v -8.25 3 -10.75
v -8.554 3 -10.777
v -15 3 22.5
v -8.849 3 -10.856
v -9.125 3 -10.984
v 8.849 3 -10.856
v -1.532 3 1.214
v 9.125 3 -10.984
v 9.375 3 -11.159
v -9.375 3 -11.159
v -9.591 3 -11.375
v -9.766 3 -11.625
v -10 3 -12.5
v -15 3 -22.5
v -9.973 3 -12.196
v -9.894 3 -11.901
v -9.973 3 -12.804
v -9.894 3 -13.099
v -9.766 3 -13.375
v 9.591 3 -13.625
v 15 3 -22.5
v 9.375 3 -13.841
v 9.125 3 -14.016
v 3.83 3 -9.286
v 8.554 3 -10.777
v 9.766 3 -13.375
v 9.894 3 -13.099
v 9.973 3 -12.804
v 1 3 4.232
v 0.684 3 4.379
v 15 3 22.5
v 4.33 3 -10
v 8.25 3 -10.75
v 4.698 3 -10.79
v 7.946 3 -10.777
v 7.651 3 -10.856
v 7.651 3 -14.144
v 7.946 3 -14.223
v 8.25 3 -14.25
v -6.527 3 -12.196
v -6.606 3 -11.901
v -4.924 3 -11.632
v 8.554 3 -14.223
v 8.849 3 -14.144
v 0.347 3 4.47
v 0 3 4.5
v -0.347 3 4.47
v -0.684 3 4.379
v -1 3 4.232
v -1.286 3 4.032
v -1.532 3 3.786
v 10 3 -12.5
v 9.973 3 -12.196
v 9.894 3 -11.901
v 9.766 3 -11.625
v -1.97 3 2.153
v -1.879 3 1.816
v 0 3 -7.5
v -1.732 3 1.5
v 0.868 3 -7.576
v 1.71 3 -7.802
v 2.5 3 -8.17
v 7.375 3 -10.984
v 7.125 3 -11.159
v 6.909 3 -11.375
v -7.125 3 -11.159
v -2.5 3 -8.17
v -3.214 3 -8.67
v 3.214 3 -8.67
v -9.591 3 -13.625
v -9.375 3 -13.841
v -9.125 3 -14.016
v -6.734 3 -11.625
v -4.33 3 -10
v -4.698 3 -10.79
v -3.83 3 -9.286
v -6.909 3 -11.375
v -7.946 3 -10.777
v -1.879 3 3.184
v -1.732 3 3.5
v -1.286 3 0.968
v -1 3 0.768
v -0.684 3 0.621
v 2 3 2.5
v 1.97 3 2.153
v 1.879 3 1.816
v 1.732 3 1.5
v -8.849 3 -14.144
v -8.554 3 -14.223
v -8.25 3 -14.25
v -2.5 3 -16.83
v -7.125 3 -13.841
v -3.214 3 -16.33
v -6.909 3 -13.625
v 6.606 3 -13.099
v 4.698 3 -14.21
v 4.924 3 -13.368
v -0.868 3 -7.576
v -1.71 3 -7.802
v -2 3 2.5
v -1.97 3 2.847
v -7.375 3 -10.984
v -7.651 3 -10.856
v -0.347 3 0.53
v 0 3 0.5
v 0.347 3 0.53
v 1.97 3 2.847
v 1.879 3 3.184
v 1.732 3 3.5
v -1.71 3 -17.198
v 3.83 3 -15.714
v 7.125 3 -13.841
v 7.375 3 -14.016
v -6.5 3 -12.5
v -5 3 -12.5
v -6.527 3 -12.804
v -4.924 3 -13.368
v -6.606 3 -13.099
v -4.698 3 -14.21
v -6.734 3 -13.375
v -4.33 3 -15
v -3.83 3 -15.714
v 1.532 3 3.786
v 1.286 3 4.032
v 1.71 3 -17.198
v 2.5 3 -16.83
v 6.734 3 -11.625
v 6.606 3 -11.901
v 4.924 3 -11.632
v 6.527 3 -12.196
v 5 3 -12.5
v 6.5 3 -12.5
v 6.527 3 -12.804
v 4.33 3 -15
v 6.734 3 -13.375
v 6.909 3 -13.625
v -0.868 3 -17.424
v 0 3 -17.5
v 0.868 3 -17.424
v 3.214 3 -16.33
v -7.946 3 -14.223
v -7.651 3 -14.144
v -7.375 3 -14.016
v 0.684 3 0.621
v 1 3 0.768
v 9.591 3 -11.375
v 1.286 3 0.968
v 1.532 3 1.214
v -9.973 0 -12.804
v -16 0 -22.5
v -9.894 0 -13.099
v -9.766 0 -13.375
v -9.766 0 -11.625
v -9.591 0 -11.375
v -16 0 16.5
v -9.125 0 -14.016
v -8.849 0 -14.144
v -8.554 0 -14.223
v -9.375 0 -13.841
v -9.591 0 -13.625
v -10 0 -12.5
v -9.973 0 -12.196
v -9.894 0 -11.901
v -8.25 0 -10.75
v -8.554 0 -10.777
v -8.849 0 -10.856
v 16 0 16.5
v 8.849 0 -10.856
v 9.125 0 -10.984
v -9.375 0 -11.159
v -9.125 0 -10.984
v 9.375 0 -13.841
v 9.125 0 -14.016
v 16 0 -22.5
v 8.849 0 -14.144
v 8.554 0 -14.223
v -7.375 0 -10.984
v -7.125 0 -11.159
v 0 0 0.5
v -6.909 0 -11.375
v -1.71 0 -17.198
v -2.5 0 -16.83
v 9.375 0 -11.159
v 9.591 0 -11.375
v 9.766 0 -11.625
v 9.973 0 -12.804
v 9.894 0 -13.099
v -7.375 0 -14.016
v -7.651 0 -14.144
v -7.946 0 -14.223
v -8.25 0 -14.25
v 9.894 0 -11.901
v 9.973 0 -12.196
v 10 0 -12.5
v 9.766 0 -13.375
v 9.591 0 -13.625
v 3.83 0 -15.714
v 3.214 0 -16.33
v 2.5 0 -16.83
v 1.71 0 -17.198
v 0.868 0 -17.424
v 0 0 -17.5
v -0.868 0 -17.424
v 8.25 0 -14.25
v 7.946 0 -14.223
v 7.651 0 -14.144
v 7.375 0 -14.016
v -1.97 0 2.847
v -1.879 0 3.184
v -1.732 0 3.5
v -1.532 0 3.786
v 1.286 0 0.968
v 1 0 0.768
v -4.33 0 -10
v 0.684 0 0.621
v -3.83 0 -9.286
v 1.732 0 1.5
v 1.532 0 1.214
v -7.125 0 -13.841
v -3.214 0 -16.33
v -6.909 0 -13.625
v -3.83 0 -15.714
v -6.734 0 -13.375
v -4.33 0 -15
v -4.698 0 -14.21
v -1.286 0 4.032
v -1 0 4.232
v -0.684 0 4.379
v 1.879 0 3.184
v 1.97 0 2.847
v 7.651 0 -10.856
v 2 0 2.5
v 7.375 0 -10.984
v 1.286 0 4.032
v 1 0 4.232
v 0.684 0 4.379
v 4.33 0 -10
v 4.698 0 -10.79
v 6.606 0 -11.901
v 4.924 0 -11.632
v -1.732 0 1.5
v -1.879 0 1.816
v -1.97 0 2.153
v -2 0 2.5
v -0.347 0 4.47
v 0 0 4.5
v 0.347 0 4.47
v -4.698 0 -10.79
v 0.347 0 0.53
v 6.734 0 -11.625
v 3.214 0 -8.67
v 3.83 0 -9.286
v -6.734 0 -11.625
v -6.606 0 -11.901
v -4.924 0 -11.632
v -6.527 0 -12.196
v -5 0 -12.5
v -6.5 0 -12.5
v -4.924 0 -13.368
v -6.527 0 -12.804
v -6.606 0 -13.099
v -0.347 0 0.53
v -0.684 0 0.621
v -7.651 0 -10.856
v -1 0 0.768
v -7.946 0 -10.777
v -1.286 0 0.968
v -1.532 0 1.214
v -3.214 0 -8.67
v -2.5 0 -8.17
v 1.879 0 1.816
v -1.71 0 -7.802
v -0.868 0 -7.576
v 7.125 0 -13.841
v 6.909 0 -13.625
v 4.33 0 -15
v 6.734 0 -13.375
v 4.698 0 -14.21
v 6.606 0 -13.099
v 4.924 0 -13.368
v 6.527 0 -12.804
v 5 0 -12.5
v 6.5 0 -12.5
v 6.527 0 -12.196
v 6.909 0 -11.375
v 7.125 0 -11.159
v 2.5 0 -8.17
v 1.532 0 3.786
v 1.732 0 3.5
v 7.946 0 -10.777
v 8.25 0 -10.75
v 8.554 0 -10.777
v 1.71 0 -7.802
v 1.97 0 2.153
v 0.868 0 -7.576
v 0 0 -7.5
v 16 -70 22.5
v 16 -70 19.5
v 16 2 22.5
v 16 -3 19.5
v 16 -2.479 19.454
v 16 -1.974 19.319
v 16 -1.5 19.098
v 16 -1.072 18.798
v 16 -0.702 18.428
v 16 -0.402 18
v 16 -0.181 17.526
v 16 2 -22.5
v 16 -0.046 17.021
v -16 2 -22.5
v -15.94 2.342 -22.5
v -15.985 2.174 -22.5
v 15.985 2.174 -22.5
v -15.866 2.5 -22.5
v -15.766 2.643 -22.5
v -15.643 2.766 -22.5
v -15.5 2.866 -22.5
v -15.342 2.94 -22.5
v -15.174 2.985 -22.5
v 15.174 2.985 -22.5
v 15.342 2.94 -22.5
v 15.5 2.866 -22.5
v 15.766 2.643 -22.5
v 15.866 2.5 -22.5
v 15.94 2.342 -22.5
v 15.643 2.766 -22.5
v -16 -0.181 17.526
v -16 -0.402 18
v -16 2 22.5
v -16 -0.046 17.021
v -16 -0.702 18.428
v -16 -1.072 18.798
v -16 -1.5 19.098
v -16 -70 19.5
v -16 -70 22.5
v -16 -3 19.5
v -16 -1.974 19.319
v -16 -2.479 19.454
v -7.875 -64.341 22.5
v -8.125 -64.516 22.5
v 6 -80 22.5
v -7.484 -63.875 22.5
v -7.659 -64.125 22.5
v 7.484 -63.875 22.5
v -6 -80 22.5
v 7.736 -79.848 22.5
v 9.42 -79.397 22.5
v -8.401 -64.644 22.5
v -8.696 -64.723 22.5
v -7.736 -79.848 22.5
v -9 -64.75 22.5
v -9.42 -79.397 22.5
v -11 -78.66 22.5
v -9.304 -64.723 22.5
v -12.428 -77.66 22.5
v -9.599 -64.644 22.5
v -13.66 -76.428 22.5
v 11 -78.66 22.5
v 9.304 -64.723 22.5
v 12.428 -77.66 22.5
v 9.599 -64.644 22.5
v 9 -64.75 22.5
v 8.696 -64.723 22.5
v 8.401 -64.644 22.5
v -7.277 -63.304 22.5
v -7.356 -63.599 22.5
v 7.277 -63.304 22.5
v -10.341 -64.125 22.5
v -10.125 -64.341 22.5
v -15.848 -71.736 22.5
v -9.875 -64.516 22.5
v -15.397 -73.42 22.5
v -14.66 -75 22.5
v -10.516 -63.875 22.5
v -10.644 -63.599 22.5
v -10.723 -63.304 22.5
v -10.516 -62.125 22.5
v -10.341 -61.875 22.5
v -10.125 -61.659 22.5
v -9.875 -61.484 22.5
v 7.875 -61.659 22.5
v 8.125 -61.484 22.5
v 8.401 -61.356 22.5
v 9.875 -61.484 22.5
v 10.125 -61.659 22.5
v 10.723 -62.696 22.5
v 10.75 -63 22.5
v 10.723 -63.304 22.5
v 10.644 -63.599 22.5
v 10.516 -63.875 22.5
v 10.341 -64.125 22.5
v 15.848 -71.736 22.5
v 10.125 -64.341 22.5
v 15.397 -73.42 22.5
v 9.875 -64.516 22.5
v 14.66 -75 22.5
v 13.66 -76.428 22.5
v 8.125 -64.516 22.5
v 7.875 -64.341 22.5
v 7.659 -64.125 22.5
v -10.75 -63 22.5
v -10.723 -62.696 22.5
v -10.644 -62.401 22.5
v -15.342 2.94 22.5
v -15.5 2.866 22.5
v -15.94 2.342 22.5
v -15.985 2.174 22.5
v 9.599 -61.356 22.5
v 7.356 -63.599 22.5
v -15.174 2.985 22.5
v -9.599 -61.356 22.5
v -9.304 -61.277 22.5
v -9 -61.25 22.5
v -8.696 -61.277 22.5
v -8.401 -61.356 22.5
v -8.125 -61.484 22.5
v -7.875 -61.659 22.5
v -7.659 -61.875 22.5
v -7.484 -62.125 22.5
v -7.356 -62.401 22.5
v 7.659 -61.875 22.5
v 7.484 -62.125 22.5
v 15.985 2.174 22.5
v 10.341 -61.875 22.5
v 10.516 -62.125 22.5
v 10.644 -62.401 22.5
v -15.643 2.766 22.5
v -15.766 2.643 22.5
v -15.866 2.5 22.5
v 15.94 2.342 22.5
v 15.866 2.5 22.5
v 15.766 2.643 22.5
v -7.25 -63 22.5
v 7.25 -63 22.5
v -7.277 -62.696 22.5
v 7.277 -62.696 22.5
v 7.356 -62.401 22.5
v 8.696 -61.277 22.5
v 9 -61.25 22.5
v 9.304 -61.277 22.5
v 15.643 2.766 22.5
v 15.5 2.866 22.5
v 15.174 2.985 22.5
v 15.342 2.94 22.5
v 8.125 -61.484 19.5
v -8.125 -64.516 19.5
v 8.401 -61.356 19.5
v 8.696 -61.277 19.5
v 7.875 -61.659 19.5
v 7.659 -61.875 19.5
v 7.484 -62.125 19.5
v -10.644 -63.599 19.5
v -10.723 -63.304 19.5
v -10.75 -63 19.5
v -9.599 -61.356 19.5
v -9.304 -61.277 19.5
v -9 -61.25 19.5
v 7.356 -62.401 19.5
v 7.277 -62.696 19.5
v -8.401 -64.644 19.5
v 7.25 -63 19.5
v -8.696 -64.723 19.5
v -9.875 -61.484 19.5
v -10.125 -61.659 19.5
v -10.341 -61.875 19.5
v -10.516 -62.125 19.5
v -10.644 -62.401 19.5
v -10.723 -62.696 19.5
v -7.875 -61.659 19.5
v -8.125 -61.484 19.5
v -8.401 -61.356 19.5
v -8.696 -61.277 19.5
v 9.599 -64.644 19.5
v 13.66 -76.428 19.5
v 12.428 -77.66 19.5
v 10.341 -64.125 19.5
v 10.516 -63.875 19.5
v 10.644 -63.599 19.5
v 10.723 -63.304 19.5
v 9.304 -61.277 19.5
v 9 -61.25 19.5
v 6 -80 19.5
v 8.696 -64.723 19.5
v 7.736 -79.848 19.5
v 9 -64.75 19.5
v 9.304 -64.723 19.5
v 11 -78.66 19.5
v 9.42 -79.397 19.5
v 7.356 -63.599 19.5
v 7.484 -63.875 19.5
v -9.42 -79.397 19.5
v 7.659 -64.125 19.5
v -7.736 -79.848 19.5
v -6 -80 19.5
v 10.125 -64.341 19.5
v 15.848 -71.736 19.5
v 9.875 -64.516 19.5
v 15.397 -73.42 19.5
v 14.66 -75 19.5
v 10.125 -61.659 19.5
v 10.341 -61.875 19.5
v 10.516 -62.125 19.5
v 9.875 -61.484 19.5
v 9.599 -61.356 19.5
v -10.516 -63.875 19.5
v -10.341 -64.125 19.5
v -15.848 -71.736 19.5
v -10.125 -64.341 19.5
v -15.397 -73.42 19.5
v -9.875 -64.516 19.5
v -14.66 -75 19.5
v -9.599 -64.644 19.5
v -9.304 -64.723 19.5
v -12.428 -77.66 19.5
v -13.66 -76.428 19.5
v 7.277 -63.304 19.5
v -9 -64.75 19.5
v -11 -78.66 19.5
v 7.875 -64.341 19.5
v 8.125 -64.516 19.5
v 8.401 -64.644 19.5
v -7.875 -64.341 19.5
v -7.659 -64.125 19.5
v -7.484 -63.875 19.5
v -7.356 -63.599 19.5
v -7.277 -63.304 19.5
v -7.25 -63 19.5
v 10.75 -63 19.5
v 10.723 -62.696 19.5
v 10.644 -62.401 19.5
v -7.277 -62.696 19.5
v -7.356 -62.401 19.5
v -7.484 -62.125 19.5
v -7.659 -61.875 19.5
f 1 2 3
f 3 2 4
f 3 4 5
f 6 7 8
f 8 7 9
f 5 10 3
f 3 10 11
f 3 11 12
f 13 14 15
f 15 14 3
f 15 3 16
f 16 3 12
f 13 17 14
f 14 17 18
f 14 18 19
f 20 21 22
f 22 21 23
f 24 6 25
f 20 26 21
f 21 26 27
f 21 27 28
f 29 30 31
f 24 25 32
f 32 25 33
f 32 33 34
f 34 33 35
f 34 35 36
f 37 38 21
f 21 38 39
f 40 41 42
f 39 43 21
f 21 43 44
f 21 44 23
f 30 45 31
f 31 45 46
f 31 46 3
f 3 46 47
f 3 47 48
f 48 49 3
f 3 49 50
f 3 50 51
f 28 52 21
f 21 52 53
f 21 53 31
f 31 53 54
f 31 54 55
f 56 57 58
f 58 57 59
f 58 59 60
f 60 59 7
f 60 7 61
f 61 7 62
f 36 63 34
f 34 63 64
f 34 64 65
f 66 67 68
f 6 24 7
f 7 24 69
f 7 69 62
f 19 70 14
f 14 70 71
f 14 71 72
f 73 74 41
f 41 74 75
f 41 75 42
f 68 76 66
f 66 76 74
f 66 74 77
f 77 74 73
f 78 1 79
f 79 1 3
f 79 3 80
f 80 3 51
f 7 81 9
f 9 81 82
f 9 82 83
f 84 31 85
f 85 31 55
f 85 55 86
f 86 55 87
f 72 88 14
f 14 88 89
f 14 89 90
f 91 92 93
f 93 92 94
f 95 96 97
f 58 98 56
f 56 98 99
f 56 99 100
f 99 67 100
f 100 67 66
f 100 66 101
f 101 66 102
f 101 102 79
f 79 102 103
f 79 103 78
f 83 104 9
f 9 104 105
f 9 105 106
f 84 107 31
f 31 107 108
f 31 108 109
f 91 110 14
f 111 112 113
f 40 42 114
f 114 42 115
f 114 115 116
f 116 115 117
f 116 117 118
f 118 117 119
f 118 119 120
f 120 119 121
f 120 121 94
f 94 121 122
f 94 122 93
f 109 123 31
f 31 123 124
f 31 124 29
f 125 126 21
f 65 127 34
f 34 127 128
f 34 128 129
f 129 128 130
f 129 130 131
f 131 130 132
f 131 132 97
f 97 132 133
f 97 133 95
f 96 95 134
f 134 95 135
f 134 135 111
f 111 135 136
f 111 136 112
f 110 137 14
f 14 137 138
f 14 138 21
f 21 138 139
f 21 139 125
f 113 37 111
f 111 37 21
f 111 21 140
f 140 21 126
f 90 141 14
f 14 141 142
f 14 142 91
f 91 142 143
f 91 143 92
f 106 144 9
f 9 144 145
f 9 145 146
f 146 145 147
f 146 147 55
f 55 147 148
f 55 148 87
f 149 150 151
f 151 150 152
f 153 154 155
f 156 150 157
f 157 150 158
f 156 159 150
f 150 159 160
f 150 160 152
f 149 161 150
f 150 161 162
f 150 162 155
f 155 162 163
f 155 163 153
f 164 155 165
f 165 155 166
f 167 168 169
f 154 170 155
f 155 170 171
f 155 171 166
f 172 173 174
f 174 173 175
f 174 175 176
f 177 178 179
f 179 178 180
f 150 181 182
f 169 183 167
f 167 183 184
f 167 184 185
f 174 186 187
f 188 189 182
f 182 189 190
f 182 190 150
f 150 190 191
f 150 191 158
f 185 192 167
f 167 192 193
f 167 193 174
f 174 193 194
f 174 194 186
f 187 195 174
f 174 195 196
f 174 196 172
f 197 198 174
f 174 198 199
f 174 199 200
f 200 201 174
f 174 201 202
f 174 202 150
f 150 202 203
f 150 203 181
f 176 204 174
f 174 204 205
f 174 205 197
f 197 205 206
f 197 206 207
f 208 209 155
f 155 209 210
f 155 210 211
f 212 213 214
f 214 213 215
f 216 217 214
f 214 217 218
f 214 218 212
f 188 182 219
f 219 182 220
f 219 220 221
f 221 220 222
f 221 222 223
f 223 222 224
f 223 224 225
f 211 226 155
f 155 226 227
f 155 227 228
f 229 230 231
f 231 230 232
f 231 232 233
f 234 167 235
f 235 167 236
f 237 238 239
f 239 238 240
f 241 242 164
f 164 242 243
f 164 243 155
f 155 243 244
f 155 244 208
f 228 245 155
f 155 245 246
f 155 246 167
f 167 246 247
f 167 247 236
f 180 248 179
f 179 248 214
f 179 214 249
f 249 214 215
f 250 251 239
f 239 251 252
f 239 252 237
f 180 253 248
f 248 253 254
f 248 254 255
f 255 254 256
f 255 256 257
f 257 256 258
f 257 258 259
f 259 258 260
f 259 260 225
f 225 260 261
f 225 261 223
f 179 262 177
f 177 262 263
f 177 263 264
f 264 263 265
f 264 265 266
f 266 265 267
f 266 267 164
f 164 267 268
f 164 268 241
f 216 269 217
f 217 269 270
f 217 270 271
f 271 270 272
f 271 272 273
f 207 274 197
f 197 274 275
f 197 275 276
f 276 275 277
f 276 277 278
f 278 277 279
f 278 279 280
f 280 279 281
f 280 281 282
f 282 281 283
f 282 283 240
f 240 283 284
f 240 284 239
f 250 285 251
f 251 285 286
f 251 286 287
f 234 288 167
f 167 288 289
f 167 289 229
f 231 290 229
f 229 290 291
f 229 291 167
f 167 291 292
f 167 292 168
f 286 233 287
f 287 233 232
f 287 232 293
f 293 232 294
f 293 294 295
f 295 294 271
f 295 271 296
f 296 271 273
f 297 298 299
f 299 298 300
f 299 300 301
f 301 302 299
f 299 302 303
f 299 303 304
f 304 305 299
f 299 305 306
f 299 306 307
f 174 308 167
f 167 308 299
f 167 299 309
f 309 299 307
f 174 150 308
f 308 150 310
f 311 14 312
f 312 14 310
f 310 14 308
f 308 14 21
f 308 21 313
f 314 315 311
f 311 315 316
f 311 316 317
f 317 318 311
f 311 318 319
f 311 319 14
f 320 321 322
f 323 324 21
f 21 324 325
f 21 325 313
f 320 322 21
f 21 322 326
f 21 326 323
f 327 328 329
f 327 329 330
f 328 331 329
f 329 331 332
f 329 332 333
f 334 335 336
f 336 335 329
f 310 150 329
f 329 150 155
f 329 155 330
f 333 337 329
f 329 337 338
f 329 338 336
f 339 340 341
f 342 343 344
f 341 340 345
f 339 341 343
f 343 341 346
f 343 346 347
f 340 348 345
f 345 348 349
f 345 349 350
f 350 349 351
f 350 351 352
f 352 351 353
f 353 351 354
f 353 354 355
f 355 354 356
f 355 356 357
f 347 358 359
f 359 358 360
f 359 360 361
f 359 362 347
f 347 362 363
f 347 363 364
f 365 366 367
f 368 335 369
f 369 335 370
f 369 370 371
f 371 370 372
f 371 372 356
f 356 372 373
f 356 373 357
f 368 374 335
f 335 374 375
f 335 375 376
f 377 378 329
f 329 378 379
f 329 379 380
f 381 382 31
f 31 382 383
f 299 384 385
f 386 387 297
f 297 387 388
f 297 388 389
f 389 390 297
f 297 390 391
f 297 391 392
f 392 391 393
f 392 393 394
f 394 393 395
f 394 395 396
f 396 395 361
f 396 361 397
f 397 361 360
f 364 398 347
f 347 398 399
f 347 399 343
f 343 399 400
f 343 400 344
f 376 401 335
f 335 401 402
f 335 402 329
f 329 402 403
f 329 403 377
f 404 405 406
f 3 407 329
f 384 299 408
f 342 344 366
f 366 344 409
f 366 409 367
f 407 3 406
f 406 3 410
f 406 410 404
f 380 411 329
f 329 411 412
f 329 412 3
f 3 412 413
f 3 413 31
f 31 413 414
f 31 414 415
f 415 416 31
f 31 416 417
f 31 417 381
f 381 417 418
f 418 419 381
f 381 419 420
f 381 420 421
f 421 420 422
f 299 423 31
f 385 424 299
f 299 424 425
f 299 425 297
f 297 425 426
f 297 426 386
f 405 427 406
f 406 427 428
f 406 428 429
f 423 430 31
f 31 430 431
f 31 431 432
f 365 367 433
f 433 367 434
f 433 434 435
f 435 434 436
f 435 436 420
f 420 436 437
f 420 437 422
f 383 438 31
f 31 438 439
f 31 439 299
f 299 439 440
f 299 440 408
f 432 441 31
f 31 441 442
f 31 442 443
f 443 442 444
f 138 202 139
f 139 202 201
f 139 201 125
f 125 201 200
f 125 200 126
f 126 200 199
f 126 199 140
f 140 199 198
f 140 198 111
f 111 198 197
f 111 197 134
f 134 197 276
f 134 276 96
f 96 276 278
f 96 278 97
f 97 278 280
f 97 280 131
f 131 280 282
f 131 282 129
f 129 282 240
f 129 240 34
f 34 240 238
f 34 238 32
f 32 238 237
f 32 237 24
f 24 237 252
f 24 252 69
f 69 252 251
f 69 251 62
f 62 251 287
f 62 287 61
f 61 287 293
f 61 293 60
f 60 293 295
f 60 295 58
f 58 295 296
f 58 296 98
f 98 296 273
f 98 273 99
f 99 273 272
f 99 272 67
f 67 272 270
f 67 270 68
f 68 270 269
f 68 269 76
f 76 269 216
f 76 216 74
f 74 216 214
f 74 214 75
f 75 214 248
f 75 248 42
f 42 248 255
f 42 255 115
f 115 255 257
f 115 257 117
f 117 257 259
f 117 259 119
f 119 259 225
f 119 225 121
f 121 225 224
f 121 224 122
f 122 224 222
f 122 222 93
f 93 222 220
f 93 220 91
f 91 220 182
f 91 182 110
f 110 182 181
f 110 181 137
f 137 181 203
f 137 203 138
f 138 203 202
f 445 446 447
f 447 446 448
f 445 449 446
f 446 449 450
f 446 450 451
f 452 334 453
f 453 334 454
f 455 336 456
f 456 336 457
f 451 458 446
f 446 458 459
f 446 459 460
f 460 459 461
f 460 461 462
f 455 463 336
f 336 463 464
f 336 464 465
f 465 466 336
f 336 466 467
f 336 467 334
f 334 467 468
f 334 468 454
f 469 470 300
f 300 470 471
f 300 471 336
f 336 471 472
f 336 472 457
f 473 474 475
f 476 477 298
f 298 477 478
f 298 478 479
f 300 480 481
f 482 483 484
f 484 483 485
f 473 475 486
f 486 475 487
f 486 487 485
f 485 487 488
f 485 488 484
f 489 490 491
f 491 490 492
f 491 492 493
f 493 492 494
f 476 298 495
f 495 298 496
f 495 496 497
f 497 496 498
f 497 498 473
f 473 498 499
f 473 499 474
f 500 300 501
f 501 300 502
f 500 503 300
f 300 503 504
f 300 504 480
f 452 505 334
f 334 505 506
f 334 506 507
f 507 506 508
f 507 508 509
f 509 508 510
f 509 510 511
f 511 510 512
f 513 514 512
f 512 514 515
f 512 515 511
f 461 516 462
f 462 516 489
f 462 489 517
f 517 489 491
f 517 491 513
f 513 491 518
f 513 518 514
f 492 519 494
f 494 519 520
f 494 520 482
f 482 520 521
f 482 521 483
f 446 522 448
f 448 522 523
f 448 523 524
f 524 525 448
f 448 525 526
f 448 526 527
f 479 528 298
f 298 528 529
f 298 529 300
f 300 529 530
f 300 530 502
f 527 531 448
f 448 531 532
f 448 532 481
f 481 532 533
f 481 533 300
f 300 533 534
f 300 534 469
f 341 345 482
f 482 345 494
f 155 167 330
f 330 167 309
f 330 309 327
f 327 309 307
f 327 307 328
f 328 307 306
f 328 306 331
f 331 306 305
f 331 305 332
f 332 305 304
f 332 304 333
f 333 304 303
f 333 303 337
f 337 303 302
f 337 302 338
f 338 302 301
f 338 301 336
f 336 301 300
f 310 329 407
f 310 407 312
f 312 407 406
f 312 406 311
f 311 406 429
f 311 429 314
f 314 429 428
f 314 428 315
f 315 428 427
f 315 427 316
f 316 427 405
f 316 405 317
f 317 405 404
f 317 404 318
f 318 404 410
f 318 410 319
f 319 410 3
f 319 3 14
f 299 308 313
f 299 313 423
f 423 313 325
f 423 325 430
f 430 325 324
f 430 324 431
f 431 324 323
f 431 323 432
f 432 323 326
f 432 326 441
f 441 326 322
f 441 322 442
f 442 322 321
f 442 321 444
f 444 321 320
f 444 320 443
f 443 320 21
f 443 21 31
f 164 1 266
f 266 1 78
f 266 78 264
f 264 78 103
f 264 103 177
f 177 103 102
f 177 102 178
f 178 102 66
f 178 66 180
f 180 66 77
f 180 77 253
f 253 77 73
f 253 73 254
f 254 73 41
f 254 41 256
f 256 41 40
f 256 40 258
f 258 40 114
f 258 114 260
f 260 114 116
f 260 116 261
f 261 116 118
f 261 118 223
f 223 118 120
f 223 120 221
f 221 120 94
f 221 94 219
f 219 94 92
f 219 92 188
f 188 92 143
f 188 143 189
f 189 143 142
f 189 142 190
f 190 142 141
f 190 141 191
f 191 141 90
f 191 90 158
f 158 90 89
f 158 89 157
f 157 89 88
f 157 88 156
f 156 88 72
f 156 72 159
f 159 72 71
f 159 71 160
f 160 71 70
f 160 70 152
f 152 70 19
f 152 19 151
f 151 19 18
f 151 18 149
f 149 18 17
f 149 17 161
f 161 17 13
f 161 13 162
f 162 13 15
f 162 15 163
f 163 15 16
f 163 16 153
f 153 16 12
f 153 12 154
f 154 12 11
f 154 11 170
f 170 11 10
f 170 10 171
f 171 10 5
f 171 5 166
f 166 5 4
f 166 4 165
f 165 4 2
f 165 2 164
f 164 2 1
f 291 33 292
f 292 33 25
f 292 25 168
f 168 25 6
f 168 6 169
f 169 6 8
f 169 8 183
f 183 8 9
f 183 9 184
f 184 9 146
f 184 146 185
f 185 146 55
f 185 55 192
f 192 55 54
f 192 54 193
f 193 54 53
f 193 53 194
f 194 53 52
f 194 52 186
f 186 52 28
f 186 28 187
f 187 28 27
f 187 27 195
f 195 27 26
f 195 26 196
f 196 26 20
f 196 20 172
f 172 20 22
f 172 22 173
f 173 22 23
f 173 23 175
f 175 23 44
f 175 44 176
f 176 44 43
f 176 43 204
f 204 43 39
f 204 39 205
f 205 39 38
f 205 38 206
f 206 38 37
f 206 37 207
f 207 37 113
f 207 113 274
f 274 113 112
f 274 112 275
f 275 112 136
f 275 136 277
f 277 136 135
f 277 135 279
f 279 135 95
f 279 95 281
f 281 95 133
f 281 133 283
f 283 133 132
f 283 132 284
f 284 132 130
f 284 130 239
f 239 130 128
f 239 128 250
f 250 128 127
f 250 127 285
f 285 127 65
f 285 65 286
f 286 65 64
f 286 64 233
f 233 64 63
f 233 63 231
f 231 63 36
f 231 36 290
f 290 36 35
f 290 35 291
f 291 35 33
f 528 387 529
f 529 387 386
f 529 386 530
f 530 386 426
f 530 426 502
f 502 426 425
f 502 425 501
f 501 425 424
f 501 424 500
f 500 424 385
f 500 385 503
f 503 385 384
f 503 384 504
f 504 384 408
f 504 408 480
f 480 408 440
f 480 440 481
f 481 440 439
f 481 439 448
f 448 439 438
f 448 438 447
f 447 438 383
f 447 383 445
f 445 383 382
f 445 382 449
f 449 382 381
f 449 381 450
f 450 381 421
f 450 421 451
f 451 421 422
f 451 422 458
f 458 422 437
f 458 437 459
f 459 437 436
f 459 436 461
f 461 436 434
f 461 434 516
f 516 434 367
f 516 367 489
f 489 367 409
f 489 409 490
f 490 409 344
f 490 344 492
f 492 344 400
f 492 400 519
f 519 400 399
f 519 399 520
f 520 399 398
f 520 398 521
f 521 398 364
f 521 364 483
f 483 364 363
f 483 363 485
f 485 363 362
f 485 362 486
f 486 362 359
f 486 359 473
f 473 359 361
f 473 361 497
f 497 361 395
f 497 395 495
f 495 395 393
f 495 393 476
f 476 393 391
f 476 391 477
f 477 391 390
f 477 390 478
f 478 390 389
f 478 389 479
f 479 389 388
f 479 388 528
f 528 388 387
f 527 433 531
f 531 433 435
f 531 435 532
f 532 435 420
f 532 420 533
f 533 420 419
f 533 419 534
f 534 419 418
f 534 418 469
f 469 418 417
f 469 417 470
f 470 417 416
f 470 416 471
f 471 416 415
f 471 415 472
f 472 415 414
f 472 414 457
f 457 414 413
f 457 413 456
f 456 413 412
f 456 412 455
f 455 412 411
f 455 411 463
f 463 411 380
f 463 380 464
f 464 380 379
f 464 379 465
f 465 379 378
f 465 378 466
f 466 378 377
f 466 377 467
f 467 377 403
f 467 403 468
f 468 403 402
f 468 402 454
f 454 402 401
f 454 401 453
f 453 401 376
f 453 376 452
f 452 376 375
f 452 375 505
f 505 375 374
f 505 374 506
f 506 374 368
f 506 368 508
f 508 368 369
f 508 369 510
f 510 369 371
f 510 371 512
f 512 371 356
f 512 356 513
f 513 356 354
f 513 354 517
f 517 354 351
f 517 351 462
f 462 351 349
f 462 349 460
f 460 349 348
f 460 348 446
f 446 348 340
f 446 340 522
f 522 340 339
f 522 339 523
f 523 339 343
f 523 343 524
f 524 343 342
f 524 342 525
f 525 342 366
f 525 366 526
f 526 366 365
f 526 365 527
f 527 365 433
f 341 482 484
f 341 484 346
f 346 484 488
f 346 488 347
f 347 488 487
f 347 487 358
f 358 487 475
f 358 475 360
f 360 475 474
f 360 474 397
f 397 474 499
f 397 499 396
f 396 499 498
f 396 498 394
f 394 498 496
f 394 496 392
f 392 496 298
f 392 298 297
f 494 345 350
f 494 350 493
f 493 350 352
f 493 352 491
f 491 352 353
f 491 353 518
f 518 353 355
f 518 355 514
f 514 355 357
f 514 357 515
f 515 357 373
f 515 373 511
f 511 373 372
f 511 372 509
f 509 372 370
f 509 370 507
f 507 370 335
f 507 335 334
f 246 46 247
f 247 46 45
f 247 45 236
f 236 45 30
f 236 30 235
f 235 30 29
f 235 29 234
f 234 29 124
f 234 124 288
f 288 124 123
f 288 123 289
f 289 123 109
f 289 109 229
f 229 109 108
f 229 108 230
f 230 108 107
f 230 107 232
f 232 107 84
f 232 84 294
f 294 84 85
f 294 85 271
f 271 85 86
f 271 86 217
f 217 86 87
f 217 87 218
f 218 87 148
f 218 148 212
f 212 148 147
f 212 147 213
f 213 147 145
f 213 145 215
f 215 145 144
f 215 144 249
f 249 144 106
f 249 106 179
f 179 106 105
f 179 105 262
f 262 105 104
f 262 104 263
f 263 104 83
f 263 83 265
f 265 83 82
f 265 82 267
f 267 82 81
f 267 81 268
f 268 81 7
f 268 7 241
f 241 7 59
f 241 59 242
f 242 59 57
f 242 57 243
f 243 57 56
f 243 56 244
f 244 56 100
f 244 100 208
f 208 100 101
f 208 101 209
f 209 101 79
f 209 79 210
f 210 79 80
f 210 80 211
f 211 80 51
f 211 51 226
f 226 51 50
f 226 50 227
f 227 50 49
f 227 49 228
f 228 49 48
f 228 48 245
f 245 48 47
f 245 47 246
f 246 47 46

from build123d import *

# Parameters (mm, degrees)
CROQUIS1_W              = 32
CROQUIS1_H              = 45
CROQUIS1_R              = 5
SALIENTE_EXTRUIR1_DEPTH = 3
CROQUIS2_W              = 32
CROQUIS2_H              = 3
SALIENTE_EXTRUIR2_DEPTH = 80
REDONDEO1_R             = 3
REDONDEO3_R             = 1
CROQUIS5_R              = 1.75
CORTAR_EXTRUIR2_DEPTH   = 10
CROQUIS6_R              = 1.75
CORTAR_EXTRUIR3_DEPTH   = 10
REDONDEO4_R             = 10
CROQUIS7_R              = 2
CORTAR_EXTRUIR4_DEPTH   = 10


with BuildPart() as part:
    # Croquis1 → Saliente-Extruir1 (new body)
    with BuildSketch(Plane(origin=(0, 0, 0), x_dir=(1, 0, 0), z_dir=(0, 1, 0))):
        Rectangle(CROQUIS1_W, CROQUIS1_H)
        with Locations(Location((0, 12.5, 0), (0, 0, 270))):
            Circle(CROQUIS1_R, mode=Mode.SUBTRACT)
    extrude(amount=SALIENTE_EXTRUIR1_DEPTH)

    # Croquis2 → Saliente-Extruir2 (add)
    with BuildSketch(Plane.XZ):
        with Locations((0, 21)):
            Rectangle(CROQUIS2_W, CROQUIS2_H)
    extrude(amount=SALIENTE_EXTRUIR2_DEPTH)

    # Redondeo1
    redondeo1_edges = [part.edges().sort_by_distance(p)[0] for p in [
        (0, 0, 19.5),
    ]]
    fillet(redondeo1_edges, radius=REDONDEO1_R)

    # Redondeo3
    redondeo3_edges = [part.edges().sort_by_distance(p)[0] for p in [
        (-16, 3, 0),
        (16, 3, 0),
    ]]
    fillet(redondeo3_edges, radius=REDONDEO3_R)

    # Croquis5 → Cortar-Extruir2 (cut)
    with BuildSketch(Plane(origin=(0, 3, 0), x_dir=(1, 0, 0), z_dir=(0, 1, 0))):
        with Locations(Location((-8.25, 12.5, 0), (0, 0, 270))):
            Circle(CROQUIS5_R)
        with Locations(Location((8.25, 12.5, 0), (0, 0, 270))):
            Circle(CROQUIS5_R)
    extrude(amount=-CORTAR_EXTRUIR2_DEPTH, mode=Mode.SUBTRACT)

    # Croquis6 → Cortar-Extruir3 (cut)
    with BuildSketch(Plane.XY.offset(22.5)):
        with Locations((-9, -63)):
            Circle(CROQUIS6_R)
        with Locations((9, -63)):
            Circle(CROQUIS6_R)
    extrude(amount=-CORTAR_EXTRUIR3_DEPTH, mode=Mode.SUBTRACT)

    # Redondeo4
    redondeo4_edges = [part.edges().sort_by_distance(p)[0] for p in [
        (-16, -80, 21),
        (16, -80, 21),
    ]]
    fillet(redondeo4_edges, radius=REDONDEO4_R)

    # Croquis7 → Cortar-Extruir4 (cut)
    with BuildSketch(Plane(origin=(0, 3, 0), x_dir=(1, 0, 0), z_dir=(0, 1, 0))):
        with Locations(Location((0, -2.5, 0), (0, 0, 270))):
            Circle(CROQUIS7_R)
    extrude(amount=-CORTAR_EXTRUIR4_DEPTH, mode=Mode.SUBTRACT)


solid = part.part
